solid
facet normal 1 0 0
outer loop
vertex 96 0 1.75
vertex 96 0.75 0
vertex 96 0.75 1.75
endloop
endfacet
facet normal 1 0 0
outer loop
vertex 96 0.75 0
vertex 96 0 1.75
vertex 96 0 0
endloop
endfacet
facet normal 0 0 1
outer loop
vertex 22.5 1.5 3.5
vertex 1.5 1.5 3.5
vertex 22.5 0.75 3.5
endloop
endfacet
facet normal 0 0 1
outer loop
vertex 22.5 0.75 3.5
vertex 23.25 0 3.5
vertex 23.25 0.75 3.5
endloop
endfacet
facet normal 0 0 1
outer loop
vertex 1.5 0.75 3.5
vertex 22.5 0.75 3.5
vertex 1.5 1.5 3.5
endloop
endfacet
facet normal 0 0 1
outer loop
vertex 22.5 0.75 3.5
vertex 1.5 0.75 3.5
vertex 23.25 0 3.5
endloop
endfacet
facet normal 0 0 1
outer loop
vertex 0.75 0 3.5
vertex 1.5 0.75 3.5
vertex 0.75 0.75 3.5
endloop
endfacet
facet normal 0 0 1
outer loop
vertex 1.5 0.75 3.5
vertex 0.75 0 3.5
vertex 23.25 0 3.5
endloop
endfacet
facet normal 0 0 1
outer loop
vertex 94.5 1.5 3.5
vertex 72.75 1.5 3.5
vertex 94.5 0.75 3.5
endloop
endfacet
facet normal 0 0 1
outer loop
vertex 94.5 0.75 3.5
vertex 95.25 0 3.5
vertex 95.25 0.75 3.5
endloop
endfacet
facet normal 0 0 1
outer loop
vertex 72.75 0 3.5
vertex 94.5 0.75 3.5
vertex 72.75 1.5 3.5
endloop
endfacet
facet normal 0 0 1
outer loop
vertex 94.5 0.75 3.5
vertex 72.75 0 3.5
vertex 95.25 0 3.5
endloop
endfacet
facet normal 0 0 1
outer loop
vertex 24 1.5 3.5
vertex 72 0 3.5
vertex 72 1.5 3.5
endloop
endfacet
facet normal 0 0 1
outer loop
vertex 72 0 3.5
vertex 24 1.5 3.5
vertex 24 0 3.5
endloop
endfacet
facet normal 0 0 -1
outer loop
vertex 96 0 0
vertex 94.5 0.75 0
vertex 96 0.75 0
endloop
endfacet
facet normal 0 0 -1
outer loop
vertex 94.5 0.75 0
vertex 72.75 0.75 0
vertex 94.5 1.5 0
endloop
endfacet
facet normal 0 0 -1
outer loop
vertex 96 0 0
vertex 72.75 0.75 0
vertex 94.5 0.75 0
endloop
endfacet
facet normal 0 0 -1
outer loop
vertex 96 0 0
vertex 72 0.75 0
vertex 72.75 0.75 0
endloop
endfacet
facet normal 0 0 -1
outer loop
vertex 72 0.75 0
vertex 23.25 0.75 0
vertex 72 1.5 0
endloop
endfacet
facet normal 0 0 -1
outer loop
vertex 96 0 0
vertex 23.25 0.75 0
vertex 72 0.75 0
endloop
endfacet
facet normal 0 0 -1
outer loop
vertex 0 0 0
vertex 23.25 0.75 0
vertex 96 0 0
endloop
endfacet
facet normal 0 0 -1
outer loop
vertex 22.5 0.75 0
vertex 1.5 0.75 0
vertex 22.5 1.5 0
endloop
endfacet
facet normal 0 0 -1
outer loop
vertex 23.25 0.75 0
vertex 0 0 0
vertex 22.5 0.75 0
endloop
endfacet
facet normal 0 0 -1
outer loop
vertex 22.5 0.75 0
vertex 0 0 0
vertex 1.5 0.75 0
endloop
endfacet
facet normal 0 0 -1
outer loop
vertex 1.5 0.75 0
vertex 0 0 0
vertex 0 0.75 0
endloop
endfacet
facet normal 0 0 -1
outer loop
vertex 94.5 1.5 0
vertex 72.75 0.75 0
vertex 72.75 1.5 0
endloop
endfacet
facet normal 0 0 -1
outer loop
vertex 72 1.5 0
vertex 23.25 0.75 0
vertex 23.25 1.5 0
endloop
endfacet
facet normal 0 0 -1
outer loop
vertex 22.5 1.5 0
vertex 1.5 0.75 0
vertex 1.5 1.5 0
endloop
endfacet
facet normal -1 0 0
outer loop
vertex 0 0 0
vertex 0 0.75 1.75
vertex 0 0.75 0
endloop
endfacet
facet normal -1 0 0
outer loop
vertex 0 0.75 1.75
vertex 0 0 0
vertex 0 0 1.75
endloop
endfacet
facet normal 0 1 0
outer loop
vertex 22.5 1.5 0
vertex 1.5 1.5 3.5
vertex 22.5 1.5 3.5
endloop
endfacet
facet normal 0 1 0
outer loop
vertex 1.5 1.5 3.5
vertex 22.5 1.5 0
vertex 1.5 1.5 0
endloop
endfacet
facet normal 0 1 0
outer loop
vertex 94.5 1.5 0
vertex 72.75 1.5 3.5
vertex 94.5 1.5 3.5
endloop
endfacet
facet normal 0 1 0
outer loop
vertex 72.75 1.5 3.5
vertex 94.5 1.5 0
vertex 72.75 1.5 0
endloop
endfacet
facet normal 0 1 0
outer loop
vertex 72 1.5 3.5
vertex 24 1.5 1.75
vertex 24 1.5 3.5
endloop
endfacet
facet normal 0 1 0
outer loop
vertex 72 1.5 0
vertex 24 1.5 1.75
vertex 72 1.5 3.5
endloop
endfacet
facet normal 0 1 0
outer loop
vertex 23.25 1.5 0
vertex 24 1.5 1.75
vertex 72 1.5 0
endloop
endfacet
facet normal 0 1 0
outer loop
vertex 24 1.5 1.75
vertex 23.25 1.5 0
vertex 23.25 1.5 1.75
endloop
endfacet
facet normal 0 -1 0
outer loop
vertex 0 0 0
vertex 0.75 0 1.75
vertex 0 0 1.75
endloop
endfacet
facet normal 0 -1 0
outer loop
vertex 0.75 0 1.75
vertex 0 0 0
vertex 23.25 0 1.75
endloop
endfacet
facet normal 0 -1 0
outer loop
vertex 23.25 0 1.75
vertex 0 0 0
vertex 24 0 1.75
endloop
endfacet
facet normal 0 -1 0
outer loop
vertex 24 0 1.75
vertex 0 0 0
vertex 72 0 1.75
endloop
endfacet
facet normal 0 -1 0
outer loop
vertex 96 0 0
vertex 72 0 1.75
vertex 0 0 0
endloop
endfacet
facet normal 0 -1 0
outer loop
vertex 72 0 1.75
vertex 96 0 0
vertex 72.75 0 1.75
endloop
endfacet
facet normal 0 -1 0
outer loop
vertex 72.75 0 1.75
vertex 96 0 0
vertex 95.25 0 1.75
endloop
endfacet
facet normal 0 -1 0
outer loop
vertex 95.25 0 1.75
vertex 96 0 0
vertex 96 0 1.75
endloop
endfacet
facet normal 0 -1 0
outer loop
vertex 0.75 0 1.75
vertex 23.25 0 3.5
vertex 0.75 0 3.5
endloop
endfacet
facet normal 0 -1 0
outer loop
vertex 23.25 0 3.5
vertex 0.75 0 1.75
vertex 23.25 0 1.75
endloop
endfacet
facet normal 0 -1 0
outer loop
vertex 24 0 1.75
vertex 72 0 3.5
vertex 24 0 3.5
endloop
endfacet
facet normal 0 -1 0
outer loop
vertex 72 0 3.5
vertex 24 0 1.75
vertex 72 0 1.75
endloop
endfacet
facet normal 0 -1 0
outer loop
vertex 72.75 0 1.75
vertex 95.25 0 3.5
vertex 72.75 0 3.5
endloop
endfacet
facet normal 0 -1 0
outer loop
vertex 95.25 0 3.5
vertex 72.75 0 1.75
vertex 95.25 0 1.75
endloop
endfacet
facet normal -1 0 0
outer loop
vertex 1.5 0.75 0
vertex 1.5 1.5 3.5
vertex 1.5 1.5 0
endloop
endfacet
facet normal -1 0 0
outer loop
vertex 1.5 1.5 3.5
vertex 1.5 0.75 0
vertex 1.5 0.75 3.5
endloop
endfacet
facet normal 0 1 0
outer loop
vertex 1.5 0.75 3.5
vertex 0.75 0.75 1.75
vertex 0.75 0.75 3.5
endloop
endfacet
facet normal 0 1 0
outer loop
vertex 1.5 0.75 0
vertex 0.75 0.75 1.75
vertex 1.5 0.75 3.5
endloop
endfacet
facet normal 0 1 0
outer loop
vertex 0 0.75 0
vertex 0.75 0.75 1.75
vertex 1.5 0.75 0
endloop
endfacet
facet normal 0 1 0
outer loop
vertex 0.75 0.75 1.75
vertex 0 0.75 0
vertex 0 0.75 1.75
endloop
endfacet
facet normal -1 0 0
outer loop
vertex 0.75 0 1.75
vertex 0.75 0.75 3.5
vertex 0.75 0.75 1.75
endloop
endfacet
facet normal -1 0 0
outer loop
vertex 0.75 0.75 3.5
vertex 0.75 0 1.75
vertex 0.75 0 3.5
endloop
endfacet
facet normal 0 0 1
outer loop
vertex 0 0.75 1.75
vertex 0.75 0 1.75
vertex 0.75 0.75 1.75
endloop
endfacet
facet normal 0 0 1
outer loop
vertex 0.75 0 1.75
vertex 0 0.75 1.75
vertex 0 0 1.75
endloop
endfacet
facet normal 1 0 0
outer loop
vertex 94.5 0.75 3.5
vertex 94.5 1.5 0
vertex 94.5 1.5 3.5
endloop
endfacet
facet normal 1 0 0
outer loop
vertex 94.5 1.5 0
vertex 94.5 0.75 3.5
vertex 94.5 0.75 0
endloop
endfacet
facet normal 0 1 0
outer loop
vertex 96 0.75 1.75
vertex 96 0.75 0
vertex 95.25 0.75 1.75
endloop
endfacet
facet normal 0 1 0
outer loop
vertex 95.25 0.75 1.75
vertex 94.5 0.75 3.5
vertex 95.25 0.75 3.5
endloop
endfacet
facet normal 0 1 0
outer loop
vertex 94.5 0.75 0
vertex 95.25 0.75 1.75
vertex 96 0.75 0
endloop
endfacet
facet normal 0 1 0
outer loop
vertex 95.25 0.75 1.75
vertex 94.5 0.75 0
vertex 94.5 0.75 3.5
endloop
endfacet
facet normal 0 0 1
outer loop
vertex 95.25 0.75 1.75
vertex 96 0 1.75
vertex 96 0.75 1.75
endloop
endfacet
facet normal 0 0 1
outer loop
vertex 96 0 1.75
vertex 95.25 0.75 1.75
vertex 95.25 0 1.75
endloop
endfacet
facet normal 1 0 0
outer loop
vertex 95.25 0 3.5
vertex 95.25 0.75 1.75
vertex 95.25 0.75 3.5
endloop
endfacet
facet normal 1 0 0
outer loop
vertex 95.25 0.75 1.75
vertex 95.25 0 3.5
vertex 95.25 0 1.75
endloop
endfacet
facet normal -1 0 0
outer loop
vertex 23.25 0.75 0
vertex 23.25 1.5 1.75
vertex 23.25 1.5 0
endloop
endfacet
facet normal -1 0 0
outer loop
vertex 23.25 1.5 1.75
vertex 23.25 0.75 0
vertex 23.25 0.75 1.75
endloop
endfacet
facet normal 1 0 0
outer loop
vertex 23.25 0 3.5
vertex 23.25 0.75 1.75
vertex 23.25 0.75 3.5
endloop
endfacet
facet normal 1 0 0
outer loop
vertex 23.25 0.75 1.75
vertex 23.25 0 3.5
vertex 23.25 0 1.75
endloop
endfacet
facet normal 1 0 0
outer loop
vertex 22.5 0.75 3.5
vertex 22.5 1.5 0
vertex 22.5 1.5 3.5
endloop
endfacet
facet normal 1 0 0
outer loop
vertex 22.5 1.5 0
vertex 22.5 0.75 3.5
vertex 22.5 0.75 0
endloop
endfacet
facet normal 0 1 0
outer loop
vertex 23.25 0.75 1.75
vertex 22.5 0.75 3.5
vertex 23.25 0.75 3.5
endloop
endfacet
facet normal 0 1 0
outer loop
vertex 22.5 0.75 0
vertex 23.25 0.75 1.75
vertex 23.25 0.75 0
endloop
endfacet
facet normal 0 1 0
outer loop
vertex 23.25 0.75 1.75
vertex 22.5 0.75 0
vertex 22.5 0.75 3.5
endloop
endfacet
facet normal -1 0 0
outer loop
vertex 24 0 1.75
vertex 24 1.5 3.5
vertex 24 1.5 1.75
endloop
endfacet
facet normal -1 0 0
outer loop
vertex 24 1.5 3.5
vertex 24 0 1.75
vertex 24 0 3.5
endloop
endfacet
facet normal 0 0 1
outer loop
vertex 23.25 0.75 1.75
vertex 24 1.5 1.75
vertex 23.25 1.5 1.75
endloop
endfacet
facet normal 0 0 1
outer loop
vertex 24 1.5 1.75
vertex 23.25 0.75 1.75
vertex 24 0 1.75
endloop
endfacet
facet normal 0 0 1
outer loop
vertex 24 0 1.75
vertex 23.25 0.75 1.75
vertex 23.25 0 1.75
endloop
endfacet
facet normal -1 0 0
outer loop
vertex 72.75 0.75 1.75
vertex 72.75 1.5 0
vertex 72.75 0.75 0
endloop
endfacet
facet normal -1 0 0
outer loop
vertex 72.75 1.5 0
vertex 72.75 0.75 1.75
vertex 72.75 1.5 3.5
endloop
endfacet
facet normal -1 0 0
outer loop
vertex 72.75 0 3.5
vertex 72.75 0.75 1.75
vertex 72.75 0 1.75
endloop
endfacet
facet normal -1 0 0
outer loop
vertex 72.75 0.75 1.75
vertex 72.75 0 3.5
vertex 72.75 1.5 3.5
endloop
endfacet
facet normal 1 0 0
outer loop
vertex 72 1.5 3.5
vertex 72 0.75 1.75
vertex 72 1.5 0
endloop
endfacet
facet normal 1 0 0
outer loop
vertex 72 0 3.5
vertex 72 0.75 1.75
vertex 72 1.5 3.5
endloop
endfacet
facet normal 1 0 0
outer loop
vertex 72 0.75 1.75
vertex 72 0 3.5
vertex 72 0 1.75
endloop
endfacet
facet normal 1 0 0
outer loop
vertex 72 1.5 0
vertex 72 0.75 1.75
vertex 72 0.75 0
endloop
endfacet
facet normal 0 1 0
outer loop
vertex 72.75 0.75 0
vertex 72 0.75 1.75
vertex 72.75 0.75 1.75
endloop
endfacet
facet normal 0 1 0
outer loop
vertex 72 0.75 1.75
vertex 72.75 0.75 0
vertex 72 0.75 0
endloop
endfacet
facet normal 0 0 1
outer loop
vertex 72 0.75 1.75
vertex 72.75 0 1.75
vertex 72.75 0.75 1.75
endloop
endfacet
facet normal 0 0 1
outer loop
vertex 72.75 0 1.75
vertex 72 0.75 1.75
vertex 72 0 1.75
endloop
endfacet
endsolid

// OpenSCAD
// file: ../config.scad
// height of desktop and shelves
desktop_shelf_color="Sienna";
desktop_height=31;
desktop_thickness=1;
table_width=96;
table_depth=36;
shelf_thickness=0.5;
shelf_height=10;
top_shelf_height=72.5;

// Legs
leg_color="BurlyWood";
front_leg_length=desktop_height;
rear_leg_length=top_shelf_height-shelf_thickness;
leg_timber_width=1.5;
leg_timber_depth=3.5;
center_leg_timber_width=1.5;
center_leg_timber_depth=3.5;
center_leg_setback=24;

// Plates
front_rear_strut_color="silver";
side_strut_color="blue";
strut_timber_depth=1.5;
strut_timber_height=3.5;
top_shelf_timber_depth=1.5;
top_shelf_timber_height=3.5;
// file: ../components/long_horizontal_plate_not_top.scad
module long_horizontal_plate_not_top()
{
    include <../config.scad>
    echo(str("BOM ITEM: long_horizontal_plate_not_top"));
    render() { // see note in README about rendering
        difference() {
            cube([table_width,strut_timber_depth,strut_timber_height],false);
            // Left cutout
            translate([0,leg_timber_width/2,0])
            {
                cube([leg_timber_width,leg_timber_width/2,strut_timber_height],false);
            }
            // Left top cutout
            translate([0,0,strut_timber_height/2]){
                cube([leg_timber_width/2,leg_timber_width/2,strut_timber_height/2]);
            }
            // Right cutout
            translate([table_width-leg_timber_width,leg_timber_width/2,0])
            {
                cube([leg_timber_width,leg_timber_width/2,strut_timber_height],false);
            }
            // Right top cutout
            translate([table_width-(leg_timber_width/2),0,strut_timber_height/2]){
                cube([leg_timber_width/2,leg_timber_width/2,strut_timber_height/2]);
            }
            // Left inside cutout
            translate([(table_width/4)-leg_timber_width,leg_timber_width/2,0])
            {
                cube([leg_timber_width/2,leg_timber_width/2,strut_timber_height],false);
            }
            // Left inside top cutout
            translate([(table_width/4)-(leg_timber_width/2),0,strut_timber_height/2])
            {
                cube([leg_timber_width/2,strut_timber_depth,strut_timber_height/2],false);
            }
            // Right inside cutout
            translate([((table_width/4)*3),leg_timber_width/2,0])
            {
                cube([leg_timber_width/2,leg_timber_width/2,strut_timber_height],false);
            }
            // Right inside top cutout
            translate([((table_width/4)*3),0,strut_timber_height/2])
            {
                cube([leg_timber_width/2,strut_timber_depth,strut_timber_height/2],false);
            }
        }
    }
}
// main file
use <../components/long_horizontal_plate_not_top.scad>

long_horizontal_plate_not_top();
